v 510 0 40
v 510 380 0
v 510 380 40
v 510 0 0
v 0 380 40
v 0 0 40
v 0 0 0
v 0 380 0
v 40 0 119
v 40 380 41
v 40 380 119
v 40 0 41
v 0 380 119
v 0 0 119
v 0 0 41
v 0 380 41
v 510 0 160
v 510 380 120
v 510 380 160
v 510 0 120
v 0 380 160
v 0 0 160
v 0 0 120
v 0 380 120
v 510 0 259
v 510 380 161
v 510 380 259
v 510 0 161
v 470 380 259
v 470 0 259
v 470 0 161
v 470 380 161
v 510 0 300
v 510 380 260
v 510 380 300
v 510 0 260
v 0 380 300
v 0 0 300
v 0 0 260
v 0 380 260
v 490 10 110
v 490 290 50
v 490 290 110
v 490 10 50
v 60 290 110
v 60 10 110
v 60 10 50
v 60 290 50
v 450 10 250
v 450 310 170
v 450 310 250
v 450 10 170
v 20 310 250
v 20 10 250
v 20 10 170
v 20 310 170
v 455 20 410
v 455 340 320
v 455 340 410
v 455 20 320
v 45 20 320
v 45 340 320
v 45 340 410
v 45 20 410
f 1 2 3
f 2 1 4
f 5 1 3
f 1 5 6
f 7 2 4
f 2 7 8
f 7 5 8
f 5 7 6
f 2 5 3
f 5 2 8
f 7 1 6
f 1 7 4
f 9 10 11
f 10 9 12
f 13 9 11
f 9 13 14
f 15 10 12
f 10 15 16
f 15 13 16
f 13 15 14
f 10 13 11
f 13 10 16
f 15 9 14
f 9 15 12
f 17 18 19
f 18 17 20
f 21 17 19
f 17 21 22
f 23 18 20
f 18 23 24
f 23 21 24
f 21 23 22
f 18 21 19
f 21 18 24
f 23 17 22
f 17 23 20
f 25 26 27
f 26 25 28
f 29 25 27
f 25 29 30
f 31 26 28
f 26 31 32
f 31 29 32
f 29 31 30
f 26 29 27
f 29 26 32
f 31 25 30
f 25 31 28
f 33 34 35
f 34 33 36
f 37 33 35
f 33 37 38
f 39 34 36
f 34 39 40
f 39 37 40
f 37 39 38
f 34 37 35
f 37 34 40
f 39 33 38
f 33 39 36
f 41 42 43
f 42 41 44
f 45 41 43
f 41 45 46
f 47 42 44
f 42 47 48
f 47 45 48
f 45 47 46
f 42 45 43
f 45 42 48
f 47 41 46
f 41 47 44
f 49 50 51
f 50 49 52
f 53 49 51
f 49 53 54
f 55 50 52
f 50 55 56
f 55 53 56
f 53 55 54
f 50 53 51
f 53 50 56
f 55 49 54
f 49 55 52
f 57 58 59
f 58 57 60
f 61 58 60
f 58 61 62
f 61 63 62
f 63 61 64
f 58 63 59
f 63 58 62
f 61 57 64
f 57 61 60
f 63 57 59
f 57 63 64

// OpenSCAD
w = 80;
h = 40;
d = 380;

color("darkred") {
// bottom
cube([430+2*h, d, h]);

// left side
translate([0, 0, h+1]) {
  cube([h, d, 60+2*10-2]);
}

// middle
translate([0, 0, h+60+2*10]) {
  cube([430+2*h, d, h]);
}

// right side
translate([h+430, 0, h+10+60+10+h+1]) {
  cube([h, d, 80+2*10-2]);
}

// top
translate([0, 0, h+60+2*10+h+80+2*10]) {
  cube([430+2*h, d, h]);
}
}

color([.4,.4,.4]) {
  // dvd
  translate([h+h/2, 10, h+10]) {
    cube([430, 280, 60]);
  }
  // amp
  translate([h/2, 10, h+10+60+10+h+10]) {
    cube([430, 300, 80]);
  }
}
color([1,1,1]) {
   translate([45,20,60+80+3*h+4*10+20]) {
    cube([410, 320, 20]);
  } 
}
color([.8,.8,.8]) {
   translate([45,20,60+80+3*h+4*10+20+20]) {
    cube([410, 320, 70]);
  } 
}
